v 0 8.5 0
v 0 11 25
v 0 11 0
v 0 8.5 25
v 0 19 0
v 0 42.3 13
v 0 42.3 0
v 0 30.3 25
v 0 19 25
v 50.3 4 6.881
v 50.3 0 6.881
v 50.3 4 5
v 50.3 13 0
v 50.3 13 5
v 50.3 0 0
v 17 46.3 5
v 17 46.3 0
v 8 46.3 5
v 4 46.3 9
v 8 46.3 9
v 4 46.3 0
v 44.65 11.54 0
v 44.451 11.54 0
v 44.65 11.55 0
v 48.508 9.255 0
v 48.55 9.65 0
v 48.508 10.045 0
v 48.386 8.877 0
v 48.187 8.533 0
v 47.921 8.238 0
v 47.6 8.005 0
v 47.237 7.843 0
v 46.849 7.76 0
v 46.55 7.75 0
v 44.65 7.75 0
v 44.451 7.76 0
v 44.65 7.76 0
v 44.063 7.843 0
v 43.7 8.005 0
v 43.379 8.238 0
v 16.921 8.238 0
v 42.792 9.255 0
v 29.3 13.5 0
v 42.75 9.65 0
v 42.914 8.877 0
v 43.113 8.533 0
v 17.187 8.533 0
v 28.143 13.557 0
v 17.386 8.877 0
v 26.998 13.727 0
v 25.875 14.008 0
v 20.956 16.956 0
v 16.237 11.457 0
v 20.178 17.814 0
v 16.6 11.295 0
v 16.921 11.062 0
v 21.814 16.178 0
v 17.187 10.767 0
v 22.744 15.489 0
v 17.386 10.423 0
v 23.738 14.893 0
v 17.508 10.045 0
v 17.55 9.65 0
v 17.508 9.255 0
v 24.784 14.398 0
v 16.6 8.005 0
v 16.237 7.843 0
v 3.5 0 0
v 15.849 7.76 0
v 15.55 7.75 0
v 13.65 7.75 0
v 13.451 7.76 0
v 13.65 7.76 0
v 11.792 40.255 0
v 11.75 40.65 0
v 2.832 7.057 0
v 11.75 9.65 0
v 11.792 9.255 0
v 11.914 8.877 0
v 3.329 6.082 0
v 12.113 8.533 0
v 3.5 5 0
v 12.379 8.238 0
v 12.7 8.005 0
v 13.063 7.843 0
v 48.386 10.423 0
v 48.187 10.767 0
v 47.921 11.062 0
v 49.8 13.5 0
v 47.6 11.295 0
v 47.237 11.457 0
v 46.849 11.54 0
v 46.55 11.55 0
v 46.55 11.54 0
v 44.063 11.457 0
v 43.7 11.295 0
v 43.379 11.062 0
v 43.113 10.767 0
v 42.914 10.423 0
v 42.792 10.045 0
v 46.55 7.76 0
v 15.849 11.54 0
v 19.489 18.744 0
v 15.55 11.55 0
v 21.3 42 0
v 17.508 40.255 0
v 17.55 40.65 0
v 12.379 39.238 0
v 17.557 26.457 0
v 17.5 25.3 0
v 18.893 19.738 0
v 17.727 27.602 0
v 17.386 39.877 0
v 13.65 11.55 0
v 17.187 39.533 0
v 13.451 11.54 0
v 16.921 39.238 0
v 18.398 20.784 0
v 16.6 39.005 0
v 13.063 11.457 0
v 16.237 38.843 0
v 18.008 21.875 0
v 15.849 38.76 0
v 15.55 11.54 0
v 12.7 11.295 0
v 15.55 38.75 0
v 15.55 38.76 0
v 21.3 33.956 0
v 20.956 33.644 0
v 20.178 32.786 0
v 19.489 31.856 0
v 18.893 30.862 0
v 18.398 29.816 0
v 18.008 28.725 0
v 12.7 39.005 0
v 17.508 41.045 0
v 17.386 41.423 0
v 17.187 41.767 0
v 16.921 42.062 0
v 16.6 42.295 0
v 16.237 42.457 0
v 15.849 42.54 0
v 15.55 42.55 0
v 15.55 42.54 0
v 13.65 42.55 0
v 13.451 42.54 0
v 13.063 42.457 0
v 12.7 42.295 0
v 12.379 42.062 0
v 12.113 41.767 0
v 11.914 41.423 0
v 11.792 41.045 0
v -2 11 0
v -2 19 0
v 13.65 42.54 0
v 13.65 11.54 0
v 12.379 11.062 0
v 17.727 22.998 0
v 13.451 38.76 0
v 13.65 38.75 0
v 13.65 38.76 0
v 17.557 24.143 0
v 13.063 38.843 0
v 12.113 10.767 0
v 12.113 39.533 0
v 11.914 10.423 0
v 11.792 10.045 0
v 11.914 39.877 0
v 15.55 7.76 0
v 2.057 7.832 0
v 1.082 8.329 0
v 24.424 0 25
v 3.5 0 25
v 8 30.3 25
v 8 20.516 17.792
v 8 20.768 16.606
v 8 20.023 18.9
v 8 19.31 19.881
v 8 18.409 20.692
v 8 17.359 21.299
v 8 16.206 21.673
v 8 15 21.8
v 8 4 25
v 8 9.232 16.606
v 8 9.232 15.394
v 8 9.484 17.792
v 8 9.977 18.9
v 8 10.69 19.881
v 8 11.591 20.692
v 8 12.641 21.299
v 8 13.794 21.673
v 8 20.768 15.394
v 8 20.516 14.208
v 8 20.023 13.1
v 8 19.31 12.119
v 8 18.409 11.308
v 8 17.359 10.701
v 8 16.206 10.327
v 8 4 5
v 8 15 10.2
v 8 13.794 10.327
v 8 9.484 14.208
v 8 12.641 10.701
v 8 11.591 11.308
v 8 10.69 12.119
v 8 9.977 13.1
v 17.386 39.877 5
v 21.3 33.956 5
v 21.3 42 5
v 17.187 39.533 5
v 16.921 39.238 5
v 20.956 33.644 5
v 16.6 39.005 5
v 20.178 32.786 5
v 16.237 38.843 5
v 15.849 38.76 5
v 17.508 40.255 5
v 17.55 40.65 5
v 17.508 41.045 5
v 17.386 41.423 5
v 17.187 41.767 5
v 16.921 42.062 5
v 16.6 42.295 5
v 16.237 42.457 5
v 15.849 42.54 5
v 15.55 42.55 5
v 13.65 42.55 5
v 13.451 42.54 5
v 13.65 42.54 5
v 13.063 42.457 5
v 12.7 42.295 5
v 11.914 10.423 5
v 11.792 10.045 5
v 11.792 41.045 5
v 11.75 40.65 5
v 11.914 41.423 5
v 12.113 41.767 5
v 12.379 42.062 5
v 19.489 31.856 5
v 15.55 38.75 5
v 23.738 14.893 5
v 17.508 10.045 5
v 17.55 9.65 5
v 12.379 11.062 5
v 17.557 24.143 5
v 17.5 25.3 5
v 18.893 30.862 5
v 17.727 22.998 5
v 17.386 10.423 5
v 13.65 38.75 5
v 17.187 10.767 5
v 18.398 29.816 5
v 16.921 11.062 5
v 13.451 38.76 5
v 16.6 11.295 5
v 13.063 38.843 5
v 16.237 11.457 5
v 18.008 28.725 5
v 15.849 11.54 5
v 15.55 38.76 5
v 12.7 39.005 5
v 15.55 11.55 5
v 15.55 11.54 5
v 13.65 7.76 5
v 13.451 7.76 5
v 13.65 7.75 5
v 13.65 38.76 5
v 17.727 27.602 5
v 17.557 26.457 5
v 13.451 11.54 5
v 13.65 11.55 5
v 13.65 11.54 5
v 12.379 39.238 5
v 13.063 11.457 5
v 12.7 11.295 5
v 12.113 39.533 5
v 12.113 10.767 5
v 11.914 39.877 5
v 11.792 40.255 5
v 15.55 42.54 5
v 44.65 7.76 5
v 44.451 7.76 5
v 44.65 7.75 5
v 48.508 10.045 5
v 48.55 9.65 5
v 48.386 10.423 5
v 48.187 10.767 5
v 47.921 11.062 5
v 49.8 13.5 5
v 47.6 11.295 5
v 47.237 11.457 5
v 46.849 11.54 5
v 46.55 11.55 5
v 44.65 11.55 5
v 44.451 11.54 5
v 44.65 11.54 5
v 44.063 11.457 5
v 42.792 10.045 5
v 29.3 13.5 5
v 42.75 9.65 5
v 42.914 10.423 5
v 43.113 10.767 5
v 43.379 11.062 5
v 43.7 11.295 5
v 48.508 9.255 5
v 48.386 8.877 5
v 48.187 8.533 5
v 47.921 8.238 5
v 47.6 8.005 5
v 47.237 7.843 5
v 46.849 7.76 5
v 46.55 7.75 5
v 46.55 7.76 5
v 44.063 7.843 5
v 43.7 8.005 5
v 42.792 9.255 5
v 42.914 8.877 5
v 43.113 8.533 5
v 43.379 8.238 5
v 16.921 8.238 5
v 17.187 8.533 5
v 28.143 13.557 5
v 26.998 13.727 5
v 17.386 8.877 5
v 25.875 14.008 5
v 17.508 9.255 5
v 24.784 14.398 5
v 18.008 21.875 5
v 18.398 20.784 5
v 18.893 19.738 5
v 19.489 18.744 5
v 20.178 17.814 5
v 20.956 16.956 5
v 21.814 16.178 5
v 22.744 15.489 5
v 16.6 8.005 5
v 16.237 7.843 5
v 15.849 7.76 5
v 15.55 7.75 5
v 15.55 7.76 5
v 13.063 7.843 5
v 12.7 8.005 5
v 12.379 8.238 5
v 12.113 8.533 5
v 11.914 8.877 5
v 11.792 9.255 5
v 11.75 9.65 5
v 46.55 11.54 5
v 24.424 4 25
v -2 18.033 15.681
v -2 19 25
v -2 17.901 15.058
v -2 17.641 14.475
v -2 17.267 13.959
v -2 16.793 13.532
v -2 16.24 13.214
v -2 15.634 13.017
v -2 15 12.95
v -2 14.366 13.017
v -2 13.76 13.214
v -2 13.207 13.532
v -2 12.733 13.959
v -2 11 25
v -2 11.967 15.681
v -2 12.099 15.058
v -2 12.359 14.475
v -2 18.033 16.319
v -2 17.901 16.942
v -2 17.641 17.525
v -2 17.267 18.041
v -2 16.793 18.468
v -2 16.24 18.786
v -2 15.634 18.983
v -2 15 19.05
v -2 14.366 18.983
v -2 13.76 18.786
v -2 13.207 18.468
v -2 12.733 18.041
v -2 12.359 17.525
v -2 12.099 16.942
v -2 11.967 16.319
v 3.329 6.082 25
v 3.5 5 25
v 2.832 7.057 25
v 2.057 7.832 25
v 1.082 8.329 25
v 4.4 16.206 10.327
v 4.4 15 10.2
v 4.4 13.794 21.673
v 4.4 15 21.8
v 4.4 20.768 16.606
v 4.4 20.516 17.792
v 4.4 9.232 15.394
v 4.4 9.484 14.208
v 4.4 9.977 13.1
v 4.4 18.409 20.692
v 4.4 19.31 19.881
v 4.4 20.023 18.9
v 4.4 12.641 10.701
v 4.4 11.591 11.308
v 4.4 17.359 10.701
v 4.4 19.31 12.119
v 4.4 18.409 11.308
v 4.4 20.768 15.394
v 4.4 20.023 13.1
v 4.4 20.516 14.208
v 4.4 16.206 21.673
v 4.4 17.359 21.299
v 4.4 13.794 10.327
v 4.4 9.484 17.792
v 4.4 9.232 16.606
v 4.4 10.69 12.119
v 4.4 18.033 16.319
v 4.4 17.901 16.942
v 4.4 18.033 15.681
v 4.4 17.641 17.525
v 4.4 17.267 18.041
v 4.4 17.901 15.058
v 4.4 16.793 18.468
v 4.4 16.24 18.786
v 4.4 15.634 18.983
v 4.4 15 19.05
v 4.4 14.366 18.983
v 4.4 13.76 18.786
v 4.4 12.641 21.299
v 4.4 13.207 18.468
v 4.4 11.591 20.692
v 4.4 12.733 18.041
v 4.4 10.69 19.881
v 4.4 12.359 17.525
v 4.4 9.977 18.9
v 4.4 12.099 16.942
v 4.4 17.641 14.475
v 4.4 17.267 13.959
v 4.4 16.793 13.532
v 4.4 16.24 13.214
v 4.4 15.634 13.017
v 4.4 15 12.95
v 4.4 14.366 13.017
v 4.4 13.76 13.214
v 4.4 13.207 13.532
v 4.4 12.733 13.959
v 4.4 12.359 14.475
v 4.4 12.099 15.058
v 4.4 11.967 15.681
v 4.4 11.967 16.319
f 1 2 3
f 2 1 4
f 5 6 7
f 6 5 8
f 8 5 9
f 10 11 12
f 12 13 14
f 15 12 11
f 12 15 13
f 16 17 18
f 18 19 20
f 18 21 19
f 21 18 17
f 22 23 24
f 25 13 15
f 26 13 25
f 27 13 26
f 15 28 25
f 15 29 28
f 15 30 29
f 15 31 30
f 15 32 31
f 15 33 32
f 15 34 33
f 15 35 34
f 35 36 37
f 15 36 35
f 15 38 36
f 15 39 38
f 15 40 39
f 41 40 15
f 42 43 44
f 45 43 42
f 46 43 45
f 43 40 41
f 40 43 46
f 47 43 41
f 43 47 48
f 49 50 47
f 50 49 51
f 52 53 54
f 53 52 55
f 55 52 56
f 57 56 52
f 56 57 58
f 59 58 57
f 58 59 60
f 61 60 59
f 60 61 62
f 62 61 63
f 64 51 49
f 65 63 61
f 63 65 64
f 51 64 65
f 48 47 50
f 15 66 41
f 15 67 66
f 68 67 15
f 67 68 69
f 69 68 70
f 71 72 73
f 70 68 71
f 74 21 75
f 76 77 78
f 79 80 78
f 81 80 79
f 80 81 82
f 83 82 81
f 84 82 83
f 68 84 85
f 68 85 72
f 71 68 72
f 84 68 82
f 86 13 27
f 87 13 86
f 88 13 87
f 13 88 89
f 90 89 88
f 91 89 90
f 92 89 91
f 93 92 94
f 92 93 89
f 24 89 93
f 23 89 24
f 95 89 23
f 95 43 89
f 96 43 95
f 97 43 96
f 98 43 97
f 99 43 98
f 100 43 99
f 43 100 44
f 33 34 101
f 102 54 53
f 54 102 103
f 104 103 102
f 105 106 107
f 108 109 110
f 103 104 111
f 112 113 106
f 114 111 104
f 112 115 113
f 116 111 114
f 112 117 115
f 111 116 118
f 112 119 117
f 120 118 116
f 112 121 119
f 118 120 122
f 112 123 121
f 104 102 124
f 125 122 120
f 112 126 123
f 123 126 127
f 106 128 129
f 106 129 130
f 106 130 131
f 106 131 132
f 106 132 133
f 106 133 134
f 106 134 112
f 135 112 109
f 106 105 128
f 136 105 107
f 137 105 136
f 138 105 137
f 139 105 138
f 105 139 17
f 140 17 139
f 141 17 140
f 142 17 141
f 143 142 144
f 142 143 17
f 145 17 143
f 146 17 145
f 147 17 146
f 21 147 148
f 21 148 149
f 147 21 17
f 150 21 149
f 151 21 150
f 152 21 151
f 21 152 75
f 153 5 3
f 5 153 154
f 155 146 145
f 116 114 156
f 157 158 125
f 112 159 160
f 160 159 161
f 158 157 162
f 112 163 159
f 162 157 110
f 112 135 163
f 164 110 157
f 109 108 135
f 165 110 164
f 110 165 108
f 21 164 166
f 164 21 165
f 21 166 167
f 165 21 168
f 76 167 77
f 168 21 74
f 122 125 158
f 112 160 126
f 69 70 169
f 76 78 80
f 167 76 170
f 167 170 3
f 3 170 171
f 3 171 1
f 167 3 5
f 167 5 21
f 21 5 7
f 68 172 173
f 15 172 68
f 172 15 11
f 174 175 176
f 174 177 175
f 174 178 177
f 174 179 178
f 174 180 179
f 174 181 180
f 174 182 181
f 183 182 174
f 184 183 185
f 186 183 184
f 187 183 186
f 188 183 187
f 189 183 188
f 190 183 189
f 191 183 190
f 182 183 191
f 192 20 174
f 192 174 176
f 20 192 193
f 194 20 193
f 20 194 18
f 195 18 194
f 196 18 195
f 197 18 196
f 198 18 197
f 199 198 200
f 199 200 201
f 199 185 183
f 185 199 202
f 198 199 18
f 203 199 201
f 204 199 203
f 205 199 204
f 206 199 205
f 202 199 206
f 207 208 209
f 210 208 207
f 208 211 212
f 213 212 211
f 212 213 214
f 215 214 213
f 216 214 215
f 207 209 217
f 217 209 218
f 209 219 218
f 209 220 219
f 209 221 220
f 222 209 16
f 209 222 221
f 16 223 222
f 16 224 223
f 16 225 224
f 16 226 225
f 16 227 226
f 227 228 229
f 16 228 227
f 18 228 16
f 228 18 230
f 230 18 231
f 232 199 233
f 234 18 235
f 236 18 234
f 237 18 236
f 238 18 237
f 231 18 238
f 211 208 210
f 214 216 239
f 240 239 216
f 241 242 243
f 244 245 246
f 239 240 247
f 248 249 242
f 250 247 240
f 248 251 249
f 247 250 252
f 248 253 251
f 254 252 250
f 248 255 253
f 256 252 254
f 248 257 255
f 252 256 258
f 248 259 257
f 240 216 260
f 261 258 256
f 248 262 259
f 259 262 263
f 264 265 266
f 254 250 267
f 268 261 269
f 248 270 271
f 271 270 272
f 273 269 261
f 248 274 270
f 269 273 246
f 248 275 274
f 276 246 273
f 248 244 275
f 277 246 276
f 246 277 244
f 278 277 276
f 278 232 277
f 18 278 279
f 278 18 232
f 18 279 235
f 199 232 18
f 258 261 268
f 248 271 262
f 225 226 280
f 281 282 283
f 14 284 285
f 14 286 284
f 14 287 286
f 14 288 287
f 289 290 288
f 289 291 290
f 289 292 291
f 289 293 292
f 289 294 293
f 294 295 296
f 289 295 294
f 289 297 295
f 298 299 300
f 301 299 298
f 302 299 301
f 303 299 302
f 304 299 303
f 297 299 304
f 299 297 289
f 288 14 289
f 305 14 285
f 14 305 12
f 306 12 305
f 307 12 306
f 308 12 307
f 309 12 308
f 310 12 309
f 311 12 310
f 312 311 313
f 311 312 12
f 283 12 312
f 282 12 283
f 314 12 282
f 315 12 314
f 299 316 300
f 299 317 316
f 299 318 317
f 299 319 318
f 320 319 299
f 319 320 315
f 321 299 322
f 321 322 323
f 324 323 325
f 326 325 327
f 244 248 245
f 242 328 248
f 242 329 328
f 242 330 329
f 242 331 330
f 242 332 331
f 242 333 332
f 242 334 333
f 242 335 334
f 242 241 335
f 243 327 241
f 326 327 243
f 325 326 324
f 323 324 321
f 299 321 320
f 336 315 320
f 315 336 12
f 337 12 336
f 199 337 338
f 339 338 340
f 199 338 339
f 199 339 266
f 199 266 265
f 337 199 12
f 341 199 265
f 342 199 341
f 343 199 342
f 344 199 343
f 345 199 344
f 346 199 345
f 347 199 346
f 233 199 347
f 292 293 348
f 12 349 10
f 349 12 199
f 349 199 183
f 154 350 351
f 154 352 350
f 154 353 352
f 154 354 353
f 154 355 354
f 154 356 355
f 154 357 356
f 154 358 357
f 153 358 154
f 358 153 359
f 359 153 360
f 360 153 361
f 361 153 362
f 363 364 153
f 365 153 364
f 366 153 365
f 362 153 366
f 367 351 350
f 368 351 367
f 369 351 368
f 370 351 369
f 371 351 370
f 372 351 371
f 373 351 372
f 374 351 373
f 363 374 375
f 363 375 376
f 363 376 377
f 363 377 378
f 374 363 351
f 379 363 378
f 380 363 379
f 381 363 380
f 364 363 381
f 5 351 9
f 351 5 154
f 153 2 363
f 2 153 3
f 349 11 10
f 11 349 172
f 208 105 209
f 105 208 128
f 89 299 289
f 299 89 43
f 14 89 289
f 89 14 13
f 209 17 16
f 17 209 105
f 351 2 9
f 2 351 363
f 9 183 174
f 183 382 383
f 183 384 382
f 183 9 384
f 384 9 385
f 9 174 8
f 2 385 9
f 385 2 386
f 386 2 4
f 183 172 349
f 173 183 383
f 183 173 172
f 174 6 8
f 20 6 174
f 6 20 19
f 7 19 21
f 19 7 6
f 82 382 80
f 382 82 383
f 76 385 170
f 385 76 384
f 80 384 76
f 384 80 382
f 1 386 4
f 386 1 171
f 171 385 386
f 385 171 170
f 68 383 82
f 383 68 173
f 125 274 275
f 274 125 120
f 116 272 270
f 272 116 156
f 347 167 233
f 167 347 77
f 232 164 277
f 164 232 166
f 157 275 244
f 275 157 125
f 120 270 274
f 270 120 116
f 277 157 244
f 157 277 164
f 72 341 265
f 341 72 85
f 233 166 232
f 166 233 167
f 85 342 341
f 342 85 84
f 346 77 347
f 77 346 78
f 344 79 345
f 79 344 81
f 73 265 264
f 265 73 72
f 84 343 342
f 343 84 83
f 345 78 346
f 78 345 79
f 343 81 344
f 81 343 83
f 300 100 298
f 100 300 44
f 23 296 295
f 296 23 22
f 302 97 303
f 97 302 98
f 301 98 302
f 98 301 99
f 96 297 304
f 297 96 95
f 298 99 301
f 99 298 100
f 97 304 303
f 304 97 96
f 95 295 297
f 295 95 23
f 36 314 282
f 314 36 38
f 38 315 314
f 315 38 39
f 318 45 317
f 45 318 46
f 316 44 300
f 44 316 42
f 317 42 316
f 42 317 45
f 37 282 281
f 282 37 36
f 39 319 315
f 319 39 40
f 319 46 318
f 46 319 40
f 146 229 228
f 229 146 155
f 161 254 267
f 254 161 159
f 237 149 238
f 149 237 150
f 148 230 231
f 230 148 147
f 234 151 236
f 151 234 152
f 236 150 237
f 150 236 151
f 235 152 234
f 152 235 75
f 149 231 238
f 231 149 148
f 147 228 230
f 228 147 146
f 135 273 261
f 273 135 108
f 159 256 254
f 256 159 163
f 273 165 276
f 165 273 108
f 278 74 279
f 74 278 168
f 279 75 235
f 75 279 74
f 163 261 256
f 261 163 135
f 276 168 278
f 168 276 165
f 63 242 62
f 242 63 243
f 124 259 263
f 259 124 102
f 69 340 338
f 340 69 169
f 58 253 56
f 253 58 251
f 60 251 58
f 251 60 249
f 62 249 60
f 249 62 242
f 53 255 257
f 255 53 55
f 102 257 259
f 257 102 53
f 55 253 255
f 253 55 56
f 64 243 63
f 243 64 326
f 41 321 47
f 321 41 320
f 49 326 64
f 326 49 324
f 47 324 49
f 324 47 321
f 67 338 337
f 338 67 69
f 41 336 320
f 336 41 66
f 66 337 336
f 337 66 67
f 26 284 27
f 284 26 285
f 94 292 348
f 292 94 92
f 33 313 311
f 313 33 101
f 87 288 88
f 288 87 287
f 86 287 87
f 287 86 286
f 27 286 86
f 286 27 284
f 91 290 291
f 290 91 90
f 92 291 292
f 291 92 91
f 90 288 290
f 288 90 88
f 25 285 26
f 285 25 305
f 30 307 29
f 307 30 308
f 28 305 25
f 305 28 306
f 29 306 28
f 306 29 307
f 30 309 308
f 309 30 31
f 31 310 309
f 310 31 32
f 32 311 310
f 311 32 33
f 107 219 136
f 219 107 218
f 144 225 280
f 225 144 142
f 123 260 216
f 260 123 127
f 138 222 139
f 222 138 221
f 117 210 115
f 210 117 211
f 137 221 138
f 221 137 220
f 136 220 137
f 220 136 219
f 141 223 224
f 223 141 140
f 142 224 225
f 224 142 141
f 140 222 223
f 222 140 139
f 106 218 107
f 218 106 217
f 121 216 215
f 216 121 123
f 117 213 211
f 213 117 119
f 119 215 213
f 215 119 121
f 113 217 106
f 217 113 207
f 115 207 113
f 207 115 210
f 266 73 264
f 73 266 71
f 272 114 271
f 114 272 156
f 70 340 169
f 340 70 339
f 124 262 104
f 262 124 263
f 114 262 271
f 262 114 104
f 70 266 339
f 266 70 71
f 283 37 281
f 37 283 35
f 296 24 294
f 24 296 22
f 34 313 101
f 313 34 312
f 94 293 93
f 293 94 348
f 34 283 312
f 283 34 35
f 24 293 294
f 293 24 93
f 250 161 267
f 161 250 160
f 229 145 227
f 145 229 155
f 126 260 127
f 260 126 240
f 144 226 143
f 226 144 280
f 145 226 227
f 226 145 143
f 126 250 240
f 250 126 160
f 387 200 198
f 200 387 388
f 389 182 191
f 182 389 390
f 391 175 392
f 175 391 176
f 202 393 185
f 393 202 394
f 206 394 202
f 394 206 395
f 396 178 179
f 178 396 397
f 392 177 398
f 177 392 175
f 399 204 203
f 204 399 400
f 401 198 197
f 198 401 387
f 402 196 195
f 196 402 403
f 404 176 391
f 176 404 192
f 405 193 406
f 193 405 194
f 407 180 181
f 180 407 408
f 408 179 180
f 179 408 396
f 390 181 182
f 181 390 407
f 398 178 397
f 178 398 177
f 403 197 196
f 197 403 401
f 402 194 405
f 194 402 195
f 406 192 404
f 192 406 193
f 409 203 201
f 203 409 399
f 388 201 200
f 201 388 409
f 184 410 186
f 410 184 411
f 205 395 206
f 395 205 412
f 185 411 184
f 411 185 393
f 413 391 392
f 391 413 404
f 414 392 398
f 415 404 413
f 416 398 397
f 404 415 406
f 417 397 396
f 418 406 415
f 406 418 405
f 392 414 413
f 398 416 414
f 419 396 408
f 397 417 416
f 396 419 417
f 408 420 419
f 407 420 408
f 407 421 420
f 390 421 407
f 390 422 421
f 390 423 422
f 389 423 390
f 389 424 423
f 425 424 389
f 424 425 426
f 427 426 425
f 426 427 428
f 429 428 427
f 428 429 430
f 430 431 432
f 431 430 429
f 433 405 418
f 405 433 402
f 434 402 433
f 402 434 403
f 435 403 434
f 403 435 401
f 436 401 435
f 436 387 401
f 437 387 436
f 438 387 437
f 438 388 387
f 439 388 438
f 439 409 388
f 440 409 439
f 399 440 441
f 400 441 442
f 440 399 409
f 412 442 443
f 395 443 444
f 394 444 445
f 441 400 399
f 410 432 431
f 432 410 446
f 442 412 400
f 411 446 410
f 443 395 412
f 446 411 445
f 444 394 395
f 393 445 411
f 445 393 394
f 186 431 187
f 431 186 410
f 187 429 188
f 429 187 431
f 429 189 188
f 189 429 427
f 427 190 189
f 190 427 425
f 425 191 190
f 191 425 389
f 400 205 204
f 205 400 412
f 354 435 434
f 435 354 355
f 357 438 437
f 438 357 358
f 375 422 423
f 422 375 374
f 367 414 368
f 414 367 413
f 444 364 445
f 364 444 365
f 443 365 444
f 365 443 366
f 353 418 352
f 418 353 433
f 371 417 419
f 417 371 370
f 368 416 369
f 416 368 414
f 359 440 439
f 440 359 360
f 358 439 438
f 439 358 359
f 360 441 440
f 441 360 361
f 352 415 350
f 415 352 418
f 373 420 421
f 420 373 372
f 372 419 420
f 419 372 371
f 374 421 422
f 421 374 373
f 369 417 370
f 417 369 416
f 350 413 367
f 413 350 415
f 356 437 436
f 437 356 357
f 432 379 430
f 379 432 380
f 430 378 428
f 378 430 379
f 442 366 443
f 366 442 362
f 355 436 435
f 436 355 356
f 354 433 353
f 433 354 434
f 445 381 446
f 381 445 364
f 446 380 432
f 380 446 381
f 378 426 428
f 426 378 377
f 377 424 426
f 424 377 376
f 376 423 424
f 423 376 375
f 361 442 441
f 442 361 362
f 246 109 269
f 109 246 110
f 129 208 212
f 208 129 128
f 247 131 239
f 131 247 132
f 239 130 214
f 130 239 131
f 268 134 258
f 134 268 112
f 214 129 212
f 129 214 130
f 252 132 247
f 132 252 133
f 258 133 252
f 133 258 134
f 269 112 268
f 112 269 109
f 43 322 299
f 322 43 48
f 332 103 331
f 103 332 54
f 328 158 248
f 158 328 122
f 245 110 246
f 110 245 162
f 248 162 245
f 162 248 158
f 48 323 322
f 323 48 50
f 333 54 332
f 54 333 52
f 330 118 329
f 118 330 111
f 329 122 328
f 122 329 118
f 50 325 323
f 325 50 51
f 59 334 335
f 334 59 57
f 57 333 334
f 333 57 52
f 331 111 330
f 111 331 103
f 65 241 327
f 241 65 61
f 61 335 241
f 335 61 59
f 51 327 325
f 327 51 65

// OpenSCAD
// file: ../configuration.scad
/*
	Konfiguracni soubor 3D tiskarny RebeliX X2
	
	Sledujte nas na:		  
			www.RepRap4U.cz
			www.facebook.com/RebeliX.cz
			https://twitter.com/reprap4u
			https://plus.google.com/+Reprap4uCz-3Dtiskarna-RebeliX
*/

/*================ Slic3r nastaveni ==========================*/

// Vyska vrstvy pro tisknuti dilu [mm]
layer_height = 0.3;

// Sirka vytlacovaneho materialu [mm]
extrusion_width = 0.66; //Slic3r->Print Settings->Advanced->Default extrusion width

/*==================== M6 sroub ==============================*/

// Rezerva prumeru hlavy sroubu [mm]
space = 1;

// Prumer hlavy M6 sroubu (pricte se rezerva) [mm]
M6_head_diameter = 10.6+space;
//M6_head_diameter = 12+space;

// Vyska hlavy M6 sroubu (dulezite pro zapusteni hlavy sroubu do plastu) [mm]
M6_head_height = 3.6;
//M6_head_height = 4.5;

// Delka sroubu M6 [mm]
// M6x12
M6_lenght = 12;

/*=================== Nastaveni dilu =========================*/

// Posun Z zakladny
z_base_offset = 11;

// Tloustka rohovych spojek
// 5 mm => sroub M6x14 s podlozkou
// 3 mm => sroub M6x12 s podlozkou
coupler_thickness = 5;

// Prumer 8mm tyce
rod_8mm_d = 8.2;

// Posun drzacku mezi x-motor a x-end
x_holder_position = 6.5;

/*======================== Motory ============================*/

// Delka motoru (ovlivni dily a delky tyci pro osy Z a Y)
//SX17-1003LQFE (doporuceno hlavne na osu Z)
motor_length = 29.5;
//SX17-1003 (doporuceno hlavne na osu Z), SX17-0503LQEF
//motor_length = 34;
//SX17-1005
//motor_length = 40;
//SX17-0905 - zde je jiz problem s velkou vyskou motoru na ose Z - musi se upravit endstop-holder
//motor_length = 48;

/*================ Remeny a remenicky ========================*/

// GT2 
belt_tooth_distance = 2;
belt_tooth_ratio = 0.5;

// T2.5
//belt_tooth_distance = 2.5;
//belt_tooth_ratio = 0.68;
// main file
// RebeliX
//
// y-motor
// GNU GPL v3
// Martin Neruda <neruda@reprap4u.cz>
// http://www.reprap4u.cz
// Inspired by Rebel II

include <../configuration.scad>

base_thickness = 8;
motor_base_thickness = 5;

module y_motor_base(){
	difference(){
      translate([0,0,0]) cube([42.3+base_thickness,42.3+4,motor_length+motor_base_thickness]);
      translate([base_thickness,4,motor_base_thickness]) cube([60,60,60]);
	}
	// Voditko do hlinikoveho profilu	
	translate([-2,15-4,0]) cube([4,8,motor_length+motor_base_thickness]);
}

module y_motor_cuts(){			
	translate([base_thickness,5,29.5+7]) rotate([-35,0,-90]) cube([10,70,40]);	
	translate([base_thickness,5,29.5+7]) rotate([0,0,-90]) cube([10,70,40]);	
	
	translate([base_thickness+21.3-8,21.3+4-8,-0.1]) cube([40,40,10]);
	translate([base_thickness+21.3,21.3+4-11.8,-0.1]) cube([25,15,10]);		
	
	translate([base_thickness+42.3,13,-0.1]) rotate([0,0,45]) cube([10,10,10,]);
	translate([base_thickness+9,42.3+4,-0.1]) rotate([0,0,-45]) cube([10,10,10,]);	
	
	// Otvor na kabely motoru
	translate([-4,-0.1,motor_length+motor_base_thickness-9.5]) cube([40,60,10]);
	translate([-0.1,4+21.3+5,motor_length+motor_base_thickness-9.5]) rotate([-45,0,0]) cube([10,40,40]);	
	
	translate([0,42.3,-0.1]) rotate([0,0,45]) cube([10,10,motor_length+motor_base_thickness]);

	// Vyrez pro vedeni kabelu od motoru Z (dolni vedeni)
	translate([0,5,-0.1]) cylinder(r=3.5,h=motor_length+motor_base_thickness+1,$fn=20);
	translate([3.5,5,-0.1]) rotate([0,0,180]) cube([10,10,motor_length+motor_base_thickness+1]);
}	

module y_motor_holes(){
	// Otvor pro prisroubovani do hlinikoveho profilu
	translate([base_thickness-M6_head_height,15,16]) rotate([0,90,0]) cylinder(r = M6_head_diameter/2, h = 10, $fn = 30);
	translate([-3,15,16]) rotate([0,90,0]) cylinder(r = 3.05, h = 10, $fn = 30);

	// Otvory pro motor
	translate([base_thickness+5.65,4+5.65,-0.1]){
		translate([0,0,-0.1]) cylinder(h = 20, r=1.9, $fn=30);
		translate([31,0,-0.1]) cylinder(h = 20, r=1.9, $fn=30);
		translate([0,31,-0.1]) cylinder(h = 20, r=1.9, $fn=30);
		// Korekce pozice motoru - napinani remenu
		translate([0+2,0,-0.1]) cylinder(h = 20, r=1.9, $fn=30);
		translate([31+2,0,-0.1]) cylinder(h = 20, r=1.9, $fn=30);
		translate([0+2,31,-0.1]) cylinder(h = 20, r=1.9, $fn=30);
		
		translate([0,0-1.9,-0.1]) cube([1.9,2*1.9,10]);
		translate([31,0-1.9,-0.1]) cube([1.9,2*1.9,10]);
		translate([0,31-1.9,-0.1]) cube([1.9,2*1.9,10]);		
	}	
	// Vyrez pro stred motoru
	translate([base_thickness+21.3,4+21.3,-0.1]) cylinder(r = 11.8,h = 10,$fn = 64);
}

difference(){
	y_motor_base();
	y_motor_cuts();
	y_motor_holes();
}	
